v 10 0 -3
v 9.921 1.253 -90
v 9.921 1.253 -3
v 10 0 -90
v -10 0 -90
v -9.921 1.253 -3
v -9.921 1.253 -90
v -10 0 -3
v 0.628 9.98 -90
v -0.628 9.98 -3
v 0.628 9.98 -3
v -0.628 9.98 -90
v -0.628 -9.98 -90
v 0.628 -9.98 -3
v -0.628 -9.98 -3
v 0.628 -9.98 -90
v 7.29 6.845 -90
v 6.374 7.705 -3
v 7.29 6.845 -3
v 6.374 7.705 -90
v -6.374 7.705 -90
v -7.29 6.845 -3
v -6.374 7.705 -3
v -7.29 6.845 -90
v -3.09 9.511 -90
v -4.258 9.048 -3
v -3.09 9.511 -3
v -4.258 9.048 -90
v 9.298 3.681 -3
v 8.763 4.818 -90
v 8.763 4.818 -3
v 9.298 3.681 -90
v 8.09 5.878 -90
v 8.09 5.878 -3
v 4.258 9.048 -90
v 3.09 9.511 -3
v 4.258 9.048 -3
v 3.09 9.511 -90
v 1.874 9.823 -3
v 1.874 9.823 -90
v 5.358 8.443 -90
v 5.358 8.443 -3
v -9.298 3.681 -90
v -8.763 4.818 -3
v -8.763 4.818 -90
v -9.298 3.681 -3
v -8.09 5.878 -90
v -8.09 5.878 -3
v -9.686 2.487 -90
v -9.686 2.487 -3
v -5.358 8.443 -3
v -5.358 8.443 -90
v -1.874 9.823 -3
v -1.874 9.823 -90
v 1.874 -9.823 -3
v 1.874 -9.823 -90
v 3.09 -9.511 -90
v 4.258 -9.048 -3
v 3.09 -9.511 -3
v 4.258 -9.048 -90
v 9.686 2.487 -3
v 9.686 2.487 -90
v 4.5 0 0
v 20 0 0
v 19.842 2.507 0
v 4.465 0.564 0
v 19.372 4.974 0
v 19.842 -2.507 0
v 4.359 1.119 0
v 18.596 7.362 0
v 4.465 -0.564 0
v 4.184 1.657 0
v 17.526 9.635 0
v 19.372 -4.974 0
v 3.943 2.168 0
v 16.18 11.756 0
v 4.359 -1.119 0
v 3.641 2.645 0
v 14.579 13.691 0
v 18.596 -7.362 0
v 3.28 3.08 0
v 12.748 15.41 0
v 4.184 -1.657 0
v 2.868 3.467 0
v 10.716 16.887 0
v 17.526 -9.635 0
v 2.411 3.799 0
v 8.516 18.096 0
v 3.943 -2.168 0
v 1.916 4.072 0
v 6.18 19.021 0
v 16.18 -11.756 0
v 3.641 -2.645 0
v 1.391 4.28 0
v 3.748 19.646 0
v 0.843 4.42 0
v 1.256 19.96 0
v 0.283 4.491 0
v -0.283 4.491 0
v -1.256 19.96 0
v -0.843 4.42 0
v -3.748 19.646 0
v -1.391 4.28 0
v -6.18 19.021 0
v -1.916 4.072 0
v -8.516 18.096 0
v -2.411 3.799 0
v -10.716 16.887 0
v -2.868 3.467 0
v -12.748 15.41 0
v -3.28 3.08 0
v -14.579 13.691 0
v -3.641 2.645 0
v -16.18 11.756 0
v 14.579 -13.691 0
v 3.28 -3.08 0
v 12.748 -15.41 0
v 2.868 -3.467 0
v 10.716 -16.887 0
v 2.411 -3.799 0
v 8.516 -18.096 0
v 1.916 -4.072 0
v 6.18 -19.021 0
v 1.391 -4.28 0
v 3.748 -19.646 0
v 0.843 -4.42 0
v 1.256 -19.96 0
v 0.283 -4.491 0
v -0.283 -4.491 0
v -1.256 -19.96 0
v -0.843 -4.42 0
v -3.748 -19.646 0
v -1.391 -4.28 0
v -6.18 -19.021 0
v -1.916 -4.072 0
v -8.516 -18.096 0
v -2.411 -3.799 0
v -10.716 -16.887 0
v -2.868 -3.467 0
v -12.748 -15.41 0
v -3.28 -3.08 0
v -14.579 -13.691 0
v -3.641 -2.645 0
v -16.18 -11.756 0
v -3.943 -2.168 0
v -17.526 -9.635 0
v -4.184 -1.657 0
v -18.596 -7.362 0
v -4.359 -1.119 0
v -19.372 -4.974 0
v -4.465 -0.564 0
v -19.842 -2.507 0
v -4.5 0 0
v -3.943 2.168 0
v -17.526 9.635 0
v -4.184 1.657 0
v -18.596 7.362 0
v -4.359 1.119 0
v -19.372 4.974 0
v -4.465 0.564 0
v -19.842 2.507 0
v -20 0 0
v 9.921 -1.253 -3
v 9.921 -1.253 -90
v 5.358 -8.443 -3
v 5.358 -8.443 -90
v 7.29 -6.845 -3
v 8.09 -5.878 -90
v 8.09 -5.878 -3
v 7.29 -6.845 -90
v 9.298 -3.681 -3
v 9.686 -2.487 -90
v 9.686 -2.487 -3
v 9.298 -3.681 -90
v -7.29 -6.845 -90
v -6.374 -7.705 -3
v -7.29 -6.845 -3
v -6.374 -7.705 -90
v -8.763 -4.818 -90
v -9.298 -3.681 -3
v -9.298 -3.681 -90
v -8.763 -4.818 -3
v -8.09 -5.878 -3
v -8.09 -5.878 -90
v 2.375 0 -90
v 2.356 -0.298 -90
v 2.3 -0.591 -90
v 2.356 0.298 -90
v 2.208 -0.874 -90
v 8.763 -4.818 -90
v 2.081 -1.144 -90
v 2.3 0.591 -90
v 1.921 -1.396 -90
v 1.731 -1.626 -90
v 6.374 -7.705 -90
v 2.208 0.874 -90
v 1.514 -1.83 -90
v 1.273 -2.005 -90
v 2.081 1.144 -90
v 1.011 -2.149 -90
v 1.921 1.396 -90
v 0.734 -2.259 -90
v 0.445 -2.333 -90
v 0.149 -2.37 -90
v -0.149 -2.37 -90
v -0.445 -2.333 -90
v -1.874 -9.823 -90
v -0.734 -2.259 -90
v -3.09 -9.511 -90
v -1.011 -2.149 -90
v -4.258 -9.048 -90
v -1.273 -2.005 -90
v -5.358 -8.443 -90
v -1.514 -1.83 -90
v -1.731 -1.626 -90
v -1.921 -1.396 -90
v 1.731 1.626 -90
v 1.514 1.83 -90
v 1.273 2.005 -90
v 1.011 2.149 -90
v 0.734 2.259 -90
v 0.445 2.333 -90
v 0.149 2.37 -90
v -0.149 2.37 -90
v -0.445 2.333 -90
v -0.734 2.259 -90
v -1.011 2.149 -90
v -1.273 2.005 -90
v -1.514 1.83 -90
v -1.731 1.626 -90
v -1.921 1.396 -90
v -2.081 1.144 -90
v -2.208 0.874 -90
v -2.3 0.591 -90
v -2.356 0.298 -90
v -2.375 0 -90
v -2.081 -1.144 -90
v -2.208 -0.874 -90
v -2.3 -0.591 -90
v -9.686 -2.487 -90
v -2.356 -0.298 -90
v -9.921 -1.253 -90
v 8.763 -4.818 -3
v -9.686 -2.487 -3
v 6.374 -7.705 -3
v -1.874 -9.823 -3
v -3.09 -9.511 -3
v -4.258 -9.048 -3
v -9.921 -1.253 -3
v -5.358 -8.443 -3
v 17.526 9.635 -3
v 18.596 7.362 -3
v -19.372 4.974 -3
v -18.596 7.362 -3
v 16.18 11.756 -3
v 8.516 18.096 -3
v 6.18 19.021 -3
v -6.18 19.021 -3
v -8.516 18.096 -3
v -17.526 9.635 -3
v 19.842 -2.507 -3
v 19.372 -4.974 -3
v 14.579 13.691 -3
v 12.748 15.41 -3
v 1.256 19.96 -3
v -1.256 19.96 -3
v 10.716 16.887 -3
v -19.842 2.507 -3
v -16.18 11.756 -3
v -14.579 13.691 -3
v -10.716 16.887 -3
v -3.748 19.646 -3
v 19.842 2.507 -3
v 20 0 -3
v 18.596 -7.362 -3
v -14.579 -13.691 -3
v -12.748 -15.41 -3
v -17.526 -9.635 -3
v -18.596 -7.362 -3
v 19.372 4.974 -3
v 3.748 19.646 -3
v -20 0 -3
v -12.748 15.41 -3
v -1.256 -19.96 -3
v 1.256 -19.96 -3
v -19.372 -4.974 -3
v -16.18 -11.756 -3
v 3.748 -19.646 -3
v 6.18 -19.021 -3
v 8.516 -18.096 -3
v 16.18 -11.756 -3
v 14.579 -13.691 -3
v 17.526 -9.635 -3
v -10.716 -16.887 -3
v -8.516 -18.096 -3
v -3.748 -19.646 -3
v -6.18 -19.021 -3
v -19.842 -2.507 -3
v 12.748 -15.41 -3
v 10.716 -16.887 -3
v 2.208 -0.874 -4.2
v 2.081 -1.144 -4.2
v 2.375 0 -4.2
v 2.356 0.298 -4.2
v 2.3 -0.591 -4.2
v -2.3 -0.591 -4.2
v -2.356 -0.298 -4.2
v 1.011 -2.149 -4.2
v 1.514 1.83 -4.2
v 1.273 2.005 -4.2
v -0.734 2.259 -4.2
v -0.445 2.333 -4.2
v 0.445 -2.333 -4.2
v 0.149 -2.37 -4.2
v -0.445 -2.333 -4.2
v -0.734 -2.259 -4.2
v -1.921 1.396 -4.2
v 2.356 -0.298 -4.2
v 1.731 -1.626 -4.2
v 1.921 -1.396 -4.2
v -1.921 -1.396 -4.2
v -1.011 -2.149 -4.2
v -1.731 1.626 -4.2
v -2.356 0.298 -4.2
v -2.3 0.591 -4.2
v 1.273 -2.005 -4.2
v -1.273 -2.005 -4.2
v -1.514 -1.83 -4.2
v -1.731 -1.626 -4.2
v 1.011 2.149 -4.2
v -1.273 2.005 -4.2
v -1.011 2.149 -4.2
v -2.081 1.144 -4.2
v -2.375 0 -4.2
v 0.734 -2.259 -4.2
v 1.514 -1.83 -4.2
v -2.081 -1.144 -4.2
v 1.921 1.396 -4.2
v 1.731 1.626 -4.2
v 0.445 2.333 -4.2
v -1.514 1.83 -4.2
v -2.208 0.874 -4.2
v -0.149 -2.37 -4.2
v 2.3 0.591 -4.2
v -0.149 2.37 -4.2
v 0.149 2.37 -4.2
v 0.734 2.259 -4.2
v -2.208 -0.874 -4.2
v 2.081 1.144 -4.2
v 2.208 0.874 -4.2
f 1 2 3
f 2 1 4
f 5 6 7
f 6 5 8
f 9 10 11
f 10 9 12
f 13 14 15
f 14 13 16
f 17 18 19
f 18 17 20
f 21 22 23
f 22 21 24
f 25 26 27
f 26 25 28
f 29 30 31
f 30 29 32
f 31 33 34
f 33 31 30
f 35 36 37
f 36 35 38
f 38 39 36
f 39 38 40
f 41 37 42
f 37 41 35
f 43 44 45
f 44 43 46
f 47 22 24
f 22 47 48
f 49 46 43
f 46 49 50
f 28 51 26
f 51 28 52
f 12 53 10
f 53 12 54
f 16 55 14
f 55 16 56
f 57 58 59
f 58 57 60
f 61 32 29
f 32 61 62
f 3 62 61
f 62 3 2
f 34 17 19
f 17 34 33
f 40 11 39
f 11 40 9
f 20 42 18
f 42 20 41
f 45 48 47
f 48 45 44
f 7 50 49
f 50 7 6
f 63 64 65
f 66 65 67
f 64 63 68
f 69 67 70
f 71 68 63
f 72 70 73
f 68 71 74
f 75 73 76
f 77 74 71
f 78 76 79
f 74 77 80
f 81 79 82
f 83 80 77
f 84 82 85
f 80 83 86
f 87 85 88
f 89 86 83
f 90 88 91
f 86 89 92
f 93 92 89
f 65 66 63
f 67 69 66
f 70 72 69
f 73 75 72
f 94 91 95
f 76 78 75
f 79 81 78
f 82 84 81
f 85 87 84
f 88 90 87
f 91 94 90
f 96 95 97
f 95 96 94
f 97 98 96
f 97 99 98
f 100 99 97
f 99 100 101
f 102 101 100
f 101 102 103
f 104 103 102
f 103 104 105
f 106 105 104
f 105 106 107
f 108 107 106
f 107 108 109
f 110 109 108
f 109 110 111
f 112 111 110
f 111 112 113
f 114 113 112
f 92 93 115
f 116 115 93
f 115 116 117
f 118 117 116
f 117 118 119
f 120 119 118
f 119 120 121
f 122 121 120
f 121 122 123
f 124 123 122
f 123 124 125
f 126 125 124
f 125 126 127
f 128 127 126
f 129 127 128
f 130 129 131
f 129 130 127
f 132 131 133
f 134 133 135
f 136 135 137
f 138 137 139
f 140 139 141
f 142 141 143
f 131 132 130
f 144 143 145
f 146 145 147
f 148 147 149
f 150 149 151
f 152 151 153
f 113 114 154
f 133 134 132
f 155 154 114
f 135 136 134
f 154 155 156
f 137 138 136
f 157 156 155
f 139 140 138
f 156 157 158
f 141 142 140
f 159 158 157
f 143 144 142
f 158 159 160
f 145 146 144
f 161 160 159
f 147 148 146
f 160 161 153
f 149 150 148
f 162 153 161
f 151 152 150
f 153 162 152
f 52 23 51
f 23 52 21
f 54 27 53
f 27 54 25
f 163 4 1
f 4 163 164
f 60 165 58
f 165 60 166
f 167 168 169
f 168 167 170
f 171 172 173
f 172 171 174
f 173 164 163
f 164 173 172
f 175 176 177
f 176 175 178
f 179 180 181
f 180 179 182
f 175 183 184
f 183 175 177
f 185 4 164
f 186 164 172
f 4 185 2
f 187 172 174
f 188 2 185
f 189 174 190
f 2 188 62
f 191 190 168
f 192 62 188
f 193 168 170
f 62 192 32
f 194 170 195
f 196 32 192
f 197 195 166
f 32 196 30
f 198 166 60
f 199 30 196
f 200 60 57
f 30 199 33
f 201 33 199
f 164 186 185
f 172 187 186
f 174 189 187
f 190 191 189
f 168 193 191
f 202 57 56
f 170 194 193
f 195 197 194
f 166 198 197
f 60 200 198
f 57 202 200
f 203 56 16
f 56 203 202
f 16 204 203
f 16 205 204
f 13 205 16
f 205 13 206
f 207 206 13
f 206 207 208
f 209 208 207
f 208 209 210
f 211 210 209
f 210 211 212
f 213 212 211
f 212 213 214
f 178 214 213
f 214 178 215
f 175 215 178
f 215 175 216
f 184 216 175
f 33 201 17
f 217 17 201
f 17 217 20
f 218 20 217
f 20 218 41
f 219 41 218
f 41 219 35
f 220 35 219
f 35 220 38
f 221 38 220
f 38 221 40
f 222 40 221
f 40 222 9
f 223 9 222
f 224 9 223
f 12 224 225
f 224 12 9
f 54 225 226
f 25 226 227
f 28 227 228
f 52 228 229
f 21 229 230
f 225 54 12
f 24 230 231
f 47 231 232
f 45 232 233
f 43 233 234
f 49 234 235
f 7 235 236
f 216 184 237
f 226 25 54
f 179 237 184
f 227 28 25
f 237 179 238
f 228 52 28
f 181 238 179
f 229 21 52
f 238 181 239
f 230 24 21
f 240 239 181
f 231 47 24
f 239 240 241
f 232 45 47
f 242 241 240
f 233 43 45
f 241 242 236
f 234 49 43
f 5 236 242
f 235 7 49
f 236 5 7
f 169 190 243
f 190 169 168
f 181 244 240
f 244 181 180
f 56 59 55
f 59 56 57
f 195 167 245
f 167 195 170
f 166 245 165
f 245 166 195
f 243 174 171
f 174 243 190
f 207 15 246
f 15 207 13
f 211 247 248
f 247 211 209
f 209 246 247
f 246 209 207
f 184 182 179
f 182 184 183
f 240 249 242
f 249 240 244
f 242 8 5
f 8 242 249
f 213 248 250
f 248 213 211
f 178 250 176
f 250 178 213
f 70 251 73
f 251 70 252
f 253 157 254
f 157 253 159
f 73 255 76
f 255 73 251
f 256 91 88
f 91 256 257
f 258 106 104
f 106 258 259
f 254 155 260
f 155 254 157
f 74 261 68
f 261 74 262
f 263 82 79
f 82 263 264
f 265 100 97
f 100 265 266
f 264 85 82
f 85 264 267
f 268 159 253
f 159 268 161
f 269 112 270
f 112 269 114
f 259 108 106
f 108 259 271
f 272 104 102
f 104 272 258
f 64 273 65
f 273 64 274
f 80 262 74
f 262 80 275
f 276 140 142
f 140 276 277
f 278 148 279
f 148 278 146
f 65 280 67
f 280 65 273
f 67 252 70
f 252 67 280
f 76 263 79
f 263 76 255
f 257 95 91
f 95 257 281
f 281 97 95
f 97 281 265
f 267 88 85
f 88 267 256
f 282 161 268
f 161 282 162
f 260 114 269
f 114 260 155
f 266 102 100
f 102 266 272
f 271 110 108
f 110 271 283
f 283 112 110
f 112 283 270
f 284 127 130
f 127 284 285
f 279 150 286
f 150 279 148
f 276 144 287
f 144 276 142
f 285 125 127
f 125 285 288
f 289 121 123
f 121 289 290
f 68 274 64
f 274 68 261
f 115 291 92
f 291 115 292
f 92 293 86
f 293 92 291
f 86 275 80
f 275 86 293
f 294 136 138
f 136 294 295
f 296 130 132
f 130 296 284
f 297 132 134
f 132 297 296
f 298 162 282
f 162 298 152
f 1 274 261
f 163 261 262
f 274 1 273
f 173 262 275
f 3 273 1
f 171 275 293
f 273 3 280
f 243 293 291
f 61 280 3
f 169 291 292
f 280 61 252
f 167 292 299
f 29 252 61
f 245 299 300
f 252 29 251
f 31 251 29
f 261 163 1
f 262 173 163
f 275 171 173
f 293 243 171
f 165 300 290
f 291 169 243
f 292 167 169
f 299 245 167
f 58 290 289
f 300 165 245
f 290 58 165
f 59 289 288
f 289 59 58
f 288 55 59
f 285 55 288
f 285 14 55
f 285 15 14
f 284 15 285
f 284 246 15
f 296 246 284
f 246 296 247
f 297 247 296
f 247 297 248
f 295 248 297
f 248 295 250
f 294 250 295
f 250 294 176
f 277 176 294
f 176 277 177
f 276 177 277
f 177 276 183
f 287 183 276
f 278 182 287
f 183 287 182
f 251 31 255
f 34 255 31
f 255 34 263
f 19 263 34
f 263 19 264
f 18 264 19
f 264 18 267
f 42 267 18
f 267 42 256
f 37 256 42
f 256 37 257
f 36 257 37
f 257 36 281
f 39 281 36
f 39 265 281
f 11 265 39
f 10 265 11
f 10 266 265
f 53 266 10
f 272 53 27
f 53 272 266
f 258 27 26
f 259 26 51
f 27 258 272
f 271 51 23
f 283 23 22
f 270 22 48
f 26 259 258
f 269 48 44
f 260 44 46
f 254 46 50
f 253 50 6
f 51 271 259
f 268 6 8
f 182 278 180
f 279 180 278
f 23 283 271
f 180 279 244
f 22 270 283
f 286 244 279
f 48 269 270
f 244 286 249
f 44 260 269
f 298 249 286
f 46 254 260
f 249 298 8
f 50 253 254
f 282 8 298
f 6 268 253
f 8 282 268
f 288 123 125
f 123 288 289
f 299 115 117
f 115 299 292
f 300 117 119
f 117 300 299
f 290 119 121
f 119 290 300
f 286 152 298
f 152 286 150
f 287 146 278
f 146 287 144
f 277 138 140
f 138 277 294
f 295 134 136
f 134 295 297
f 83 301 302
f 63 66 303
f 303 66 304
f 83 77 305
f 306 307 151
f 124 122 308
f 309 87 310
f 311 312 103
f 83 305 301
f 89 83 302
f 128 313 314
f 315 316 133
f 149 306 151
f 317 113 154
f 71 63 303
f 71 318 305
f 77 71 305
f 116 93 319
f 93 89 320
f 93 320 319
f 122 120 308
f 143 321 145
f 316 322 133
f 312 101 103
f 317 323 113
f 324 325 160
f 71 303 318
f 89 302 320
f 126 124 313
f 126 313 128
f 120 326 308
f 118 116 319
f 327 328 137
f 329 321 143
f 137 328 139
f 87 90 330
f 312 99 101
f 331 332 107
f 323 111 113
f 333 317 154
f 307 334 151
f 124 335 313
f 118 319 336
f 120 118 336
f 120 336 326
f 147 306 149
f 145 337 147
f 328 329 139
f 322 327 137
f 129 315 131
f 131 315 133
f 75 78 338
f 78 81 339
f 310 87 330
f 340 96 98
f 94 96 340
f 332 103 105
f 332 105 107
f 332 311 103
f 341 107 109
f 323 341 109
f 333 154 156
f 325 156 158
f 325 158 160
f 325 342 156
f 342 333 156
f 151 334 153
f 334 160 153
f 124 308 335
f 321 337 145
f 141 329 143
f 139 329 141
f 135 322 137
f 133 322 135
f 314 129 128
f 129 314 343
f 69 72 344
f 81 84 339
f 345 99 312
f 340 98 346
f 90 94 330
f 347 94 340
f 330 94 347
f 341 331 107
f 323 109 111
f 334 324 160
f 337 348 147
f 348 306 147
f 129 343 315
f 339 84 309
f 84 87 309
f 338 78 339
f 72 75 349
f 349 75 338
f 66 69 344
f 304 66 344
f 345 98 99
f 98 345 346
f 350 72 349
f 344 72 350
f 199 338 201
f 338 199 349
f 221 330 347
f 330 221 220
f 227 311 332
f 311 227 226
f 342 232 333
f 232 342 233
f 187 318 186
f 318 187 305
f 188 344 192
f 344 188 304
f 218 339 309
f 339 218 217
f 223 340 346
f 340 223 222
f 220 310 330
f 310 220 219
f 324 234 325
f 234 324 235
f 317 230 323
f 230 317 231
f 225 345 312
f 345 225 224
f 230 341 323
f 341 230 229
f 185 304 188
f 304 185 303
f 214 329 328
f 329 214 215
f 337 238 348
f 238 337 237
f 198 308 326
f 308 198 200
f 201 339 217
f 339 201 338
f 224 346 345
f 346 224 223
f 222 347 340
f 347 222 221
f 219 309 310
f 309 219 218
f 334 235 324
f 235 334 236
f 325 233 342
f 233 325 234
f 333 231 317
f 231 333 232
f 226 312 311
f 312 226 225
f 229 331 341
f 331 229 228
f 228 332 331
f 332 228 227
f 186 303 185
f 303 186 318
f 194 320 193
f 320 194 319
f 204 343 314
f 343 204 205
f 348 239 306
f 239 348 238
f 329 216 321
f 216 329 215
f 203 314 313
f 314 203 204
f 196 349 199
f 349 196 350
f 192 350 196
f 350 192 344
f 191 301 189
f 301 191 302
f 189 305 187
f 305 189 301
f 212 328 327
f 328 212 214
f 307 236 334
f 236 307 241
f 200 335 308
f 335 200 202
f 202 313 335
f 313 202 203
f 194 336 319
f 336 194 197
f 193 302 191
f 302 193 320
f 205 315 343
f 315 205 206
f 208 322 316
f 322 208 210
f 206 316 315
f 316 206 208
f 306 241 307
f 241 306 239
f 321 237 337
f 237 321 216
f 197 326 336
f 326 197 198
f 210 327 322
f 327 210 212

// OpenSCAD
$fn = 50;


difference() {
	union() {
		translate(v = [0, 0, -90.0000000000]) {
			cylinder(h = 90, r = 10.0000000000);
		}
		translate(v = [0, 0, -3.0000000000]) {
			cylinder(h = 3, r = 20.0000000000);
		}
	}
	union() {
		translate(v = [0, 0, 0]) {
			rotate(a = [0, 0, 0]) {
				difference() {
					union() {
						#translate(v = [0, 0, -90.0000000000]) {
							cylinder(h = 90, r = 2.2500000000);
						}
						#translate(v = [0, 0, -4.2000000000]) {
							cylinder(h = 4.2000000000, r = 10.0000000000, r1 = 2.3750000000, r2 = 4.5000000000);
						}
						#translate(v = [0, 0, -90.0000000000]) {
							cylinder(h = 90, r = 2.3750000000);
						}
						#translate(v = [0, 0, -90.0000000000]) {
							cylinder(h = 90, r = 2.2500000000);
						}
					}
					union();
				}
			}
		}
	}
}
